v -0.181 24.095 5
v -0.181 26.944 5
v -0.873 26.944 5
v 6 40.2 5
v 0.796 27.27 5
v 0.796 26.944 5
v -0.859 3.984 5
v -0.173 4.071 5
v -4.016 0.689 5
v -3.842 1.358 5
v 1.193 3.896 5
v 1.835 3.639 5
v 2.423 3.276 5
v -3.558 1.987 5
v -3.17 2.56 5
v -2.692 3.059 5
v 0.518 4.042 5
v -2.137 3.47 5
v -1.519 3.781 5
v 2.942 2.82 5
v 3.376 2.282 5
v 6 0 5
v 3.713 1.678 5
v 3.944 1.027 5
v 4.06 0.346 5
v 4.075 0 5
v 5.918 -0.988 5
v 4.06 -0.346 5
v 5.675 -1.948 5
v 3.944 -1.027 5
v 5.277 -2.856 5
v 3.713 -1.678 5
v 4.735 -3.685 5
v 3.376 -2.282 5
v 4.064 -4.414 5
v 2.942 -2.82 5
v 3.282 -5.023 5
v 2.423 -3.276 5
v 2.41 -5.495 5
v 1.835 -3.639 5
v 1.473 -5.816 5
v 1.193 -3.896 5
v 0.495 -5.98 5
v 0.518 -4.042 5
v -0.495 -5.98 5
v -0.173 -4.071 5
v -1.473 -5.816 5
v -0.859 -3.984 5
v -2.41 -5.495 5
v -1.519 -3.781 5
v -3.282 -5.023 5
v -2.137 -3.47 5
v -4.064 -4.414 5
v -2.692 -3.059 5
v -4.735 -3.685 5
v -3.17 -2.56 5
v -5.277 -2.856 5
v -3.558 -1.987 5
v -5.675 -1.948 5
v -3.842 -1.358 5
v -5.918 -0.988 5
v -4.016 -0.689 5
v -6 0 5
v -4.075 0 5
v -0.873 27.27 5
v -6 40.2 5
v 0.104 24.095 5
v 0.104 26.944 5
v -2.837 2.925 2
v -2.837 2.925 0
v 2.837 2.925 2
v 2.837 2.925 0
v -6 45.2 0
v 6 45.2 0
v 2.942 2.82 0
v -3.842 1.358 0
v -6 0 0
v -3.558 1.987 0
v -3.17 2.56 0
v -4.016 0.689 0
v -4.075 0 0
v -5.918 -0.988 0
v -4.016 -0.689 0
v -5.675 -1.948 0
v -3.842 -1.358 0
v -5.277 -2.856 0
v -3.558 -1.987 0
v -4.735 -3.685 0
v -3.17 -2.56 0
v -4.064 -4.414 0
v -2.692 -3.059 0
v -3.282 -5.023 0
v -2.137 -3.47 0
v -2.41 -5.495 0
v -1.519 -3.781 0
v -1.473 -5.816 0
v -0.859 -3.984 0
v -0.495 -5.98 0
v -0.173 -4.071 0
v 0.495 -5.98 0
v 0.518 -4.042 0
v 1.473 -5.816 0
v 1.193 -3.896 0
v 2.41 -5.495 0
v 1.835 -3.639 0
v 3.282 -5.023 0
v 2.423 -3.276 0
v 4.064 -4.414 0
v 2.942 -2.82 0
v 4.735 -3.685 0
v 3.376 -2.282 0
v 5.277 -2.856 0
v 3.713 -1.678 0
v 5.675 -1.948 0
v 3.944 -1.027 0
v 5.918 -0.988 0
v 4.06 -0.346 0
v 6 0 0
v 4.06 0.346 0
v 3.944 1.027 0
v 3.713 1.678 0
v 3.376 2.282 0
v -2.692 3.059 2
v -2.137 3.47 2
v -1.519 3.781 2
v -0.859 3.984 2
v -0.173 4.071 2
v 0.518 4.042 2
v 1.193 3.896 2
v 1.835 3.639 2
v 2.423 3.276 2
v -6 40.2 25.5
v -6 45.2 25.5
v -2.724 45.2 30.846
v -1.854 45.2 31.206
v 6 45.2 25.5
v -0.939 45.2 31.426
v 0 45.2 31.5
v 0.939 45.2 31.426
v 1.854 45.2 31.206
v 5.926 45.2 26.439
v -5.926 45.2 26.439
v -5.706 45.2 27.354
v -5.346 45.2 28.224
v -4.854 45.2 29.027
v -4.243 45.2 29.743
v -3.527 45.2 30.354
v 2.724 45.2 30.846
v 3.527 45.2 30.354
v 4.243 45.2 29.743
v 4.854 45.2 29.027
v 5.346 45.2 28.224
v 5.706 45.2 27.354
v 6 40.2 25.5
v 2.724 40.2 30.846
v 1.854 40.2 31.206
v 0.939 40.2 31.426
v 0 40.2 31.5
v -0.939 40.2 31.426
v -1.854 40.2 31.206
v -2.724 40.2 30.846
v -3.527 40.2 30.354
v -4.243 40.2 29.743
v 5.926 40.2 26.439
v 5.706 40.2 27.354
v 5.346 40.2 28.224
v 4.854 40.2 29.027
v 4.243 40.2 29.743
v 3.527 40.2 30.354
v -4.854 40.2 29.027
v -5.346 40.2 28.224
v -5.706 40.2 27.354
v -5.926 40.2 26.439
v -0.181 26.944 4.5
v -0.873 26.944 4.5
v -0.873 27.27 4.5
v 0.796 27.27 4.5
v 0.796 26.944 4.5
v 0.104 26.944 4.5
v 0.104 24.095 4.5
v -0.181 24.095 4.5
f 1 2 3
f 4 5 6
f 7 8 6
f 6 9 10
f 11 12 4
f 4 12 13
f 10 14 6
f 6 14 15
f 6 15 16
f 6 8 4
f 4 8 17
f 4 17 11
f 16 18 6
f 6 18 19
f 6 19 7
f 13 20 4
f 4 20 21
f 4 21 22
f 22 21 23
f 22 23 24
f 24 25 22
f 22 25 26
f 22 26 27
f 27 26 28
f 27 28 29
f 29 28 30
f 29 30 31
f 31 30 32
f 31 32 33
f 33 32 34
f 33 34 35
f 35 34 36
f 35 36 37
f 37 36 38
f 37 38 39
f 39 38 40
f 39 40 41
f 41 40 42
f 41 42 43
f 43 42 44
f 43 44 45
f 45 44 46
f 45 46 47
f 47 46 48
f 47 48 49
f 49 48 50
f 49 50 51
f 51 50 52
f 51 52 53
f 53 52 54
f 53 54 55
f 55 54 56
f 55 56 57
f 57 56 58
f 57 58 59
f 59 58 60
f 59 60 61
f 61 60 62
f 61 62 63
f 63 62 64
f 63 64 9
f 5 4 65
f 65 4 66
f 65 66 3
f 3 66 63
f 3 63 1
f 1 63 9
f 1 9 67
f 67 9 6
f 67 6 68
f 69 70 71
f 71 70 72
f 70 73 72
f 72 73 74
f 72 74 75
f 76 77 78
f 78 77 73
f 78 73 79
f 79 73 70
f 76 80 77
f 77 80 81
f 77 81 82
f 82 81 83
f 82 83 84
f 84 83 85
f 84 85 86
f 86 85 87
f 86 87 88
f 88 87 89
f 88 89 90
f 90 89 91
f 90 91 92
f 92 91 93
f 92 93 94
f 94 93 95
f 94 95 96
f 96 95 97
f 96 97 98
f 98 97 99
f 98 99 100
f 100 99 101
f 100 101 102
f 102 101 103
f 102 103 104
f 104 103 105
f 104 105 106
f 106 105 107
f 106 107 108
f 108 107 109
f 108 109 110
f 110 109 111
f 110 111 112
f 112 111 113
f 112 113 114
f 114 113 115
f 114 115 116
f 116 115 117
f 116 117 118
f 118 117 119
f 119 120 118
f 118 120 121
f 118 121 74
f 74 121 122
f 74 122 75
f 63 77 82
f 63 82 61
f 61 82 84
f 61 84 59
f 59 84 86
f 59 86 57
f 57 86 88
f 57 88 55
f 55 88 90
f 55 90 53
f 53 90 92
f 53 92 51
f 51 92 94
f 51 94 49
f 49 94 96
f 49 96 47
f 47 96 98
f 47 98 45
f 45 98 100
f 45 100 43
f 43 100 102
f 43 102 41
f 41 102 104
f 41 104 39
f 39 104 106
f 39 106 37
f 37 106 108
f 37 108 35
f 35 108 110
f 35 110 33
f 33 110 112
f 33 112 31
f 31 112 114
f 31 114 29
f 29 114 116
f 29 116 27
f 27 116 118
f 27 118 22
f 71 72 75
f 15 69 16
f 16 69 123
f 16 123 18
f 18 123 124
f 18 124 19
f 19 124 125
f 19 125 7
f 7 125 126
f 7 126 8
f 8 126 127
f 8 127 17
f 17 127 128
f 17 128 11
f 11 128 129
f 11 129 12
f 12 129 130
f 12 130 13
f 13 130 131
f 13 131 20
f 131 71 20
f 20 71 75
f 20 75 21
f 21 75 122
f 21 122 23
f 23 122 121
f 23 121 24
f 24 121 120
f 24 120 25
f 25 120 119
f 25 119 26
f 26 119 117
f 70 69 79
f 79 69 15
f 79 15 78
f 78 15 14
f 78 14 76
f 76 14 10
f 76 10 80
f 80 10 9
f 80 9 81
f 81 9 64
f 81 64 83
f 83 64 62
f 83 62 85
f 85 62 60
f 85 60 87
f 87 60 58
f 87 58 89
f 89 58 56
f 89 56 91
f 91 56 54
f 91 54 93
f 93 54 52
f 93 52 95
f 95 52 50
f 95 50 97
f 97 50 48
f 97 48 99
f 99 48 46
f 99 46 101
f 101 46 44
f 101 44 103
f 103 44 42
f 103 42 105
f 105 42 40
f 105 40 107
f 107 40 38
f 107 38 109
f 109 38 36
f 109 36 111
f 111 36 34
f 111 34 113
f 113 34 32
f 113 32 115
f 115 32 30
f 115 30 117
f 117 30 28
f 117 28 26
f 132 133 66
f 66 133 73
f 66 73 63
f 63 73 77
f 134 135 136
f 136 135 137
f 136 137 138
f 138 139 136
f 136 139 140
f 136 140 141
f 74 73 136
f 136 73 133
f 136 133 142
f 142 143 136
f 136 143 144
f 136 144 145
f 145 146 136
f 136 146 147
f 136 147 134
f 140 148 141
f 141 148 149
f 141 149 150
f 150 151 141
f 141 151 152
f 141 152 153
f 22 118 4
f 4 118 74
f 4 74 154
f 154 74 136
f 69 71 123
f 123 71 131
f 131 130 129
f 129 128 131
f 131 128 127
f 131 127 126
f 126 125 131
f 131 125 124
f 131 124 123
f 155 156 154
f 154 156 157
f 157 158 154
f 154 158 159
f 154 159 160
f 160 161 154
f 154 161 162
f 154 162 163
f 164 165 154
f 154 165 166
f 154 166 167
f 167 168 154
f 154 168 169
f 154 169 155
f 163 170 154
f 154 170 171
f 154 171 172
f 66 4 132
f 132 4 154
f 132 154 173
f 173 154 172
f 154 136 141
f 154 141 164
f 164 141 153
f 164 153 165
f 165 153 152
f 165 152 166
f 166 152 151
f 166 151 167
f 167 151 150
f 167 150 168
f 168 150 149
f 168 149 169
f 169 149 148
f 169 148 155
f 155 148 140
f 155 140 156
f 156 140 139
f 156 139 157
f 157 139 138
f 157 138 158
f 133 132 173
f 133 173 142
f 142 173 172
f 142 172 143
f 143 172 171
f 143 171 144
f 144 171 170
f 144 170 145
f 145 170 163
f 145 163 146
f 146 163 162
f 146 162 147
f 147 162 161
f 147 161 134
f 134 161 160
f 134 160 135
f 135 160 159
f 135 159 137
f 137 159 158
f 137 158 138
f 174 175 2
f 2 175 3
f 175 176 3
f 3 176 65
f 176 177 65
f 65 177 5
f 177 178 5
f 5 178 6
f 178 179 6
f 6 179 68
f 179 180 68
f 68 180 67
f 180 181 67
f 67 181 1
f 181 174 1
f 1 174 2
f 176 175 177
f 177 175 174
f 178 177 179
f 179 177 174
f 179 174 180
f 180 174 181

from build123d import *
from build123d.topology import SkipClean

# Parameters (mm, degrees)
SKETCH1_R           = 6
BOSS_EXTRUDE1_DEPTH = 5
BOSS_EXTRUDE2_START = -5
BOSS_EXTRUDE2_DEPTH = 5
CUT_EXTRUDE1_START  = -3
SKETCH3_R           = 4.075
CUT_EXTRUDE1_DEPTH  = 3
SKETCH4_W           = 12
SKETCH4_H           = 5
BOSS_EXTRUDE3_DEPTH = 26.5
FILLET1_R           = 6
CUT_EXTRUDE2_DEPTH  = 0.5


with BuildPart() as part:
    # Sketch1 → Boss-Extrude1 (new body)
    with BuildSketch(Plane.XY):
        Circle(SKETCH1_R)
        with BuildLine():
            Line((-2.837252192, 2.925), (2.837252192, 2.925))
            ThreePointArc((2.837252192, 2.925), (0, -4.075), (-2.837252192, 2.925))
        make_face(mode=Mode.SUBTRACT)
    extrude(amount=BOSS_EXTRUDE1_DEPTH)

    # Sketch2 → Boss-Extrude2 (add)
    with BuildSketch(Plane.XY.offset(5).offset(BOSS_EXTRUDE2_START)):
        with BuildLine():
            Line((-6, 0), (-6, 45.2))
            Line((-6, 45.2), (6, 45.2))
            Line((6, 45.2), (6, 0))
            ThreePointArc((6, 0), (0, 6), (-6, 0))
        make_face()
    extrude(amount=BOSS_EXTRUDE2_DEPTH)

    # Sketch3 → Cut-Extrude1 (cut)
    with SkipClean():  # the faces are left unmerged after this step: merging them gives an invalid solid
        with BuildSketch(Plane.XY.offset(5).offset(CUT_EXTRUDE1_START)):
            with Locations(Location((0, 0, 0), (0, 0, 134.127564998))):
                Circle(SKETCH3_R)
        extrude(amount=CUT_EXTRUDE1_DEPTH, mode=Mode.SUBTRACT)

    # Sketch4 → Boss-Extrude3 (add)
    with SkipClean():  # the faces are left unmerged after this step: merging them gives an invalid solid
        with BuildSketch(Plane.XY.offset(5)):
            with Locations((0, 42.7)):
                Rectangle(SKETCH4_W, SKETCH4_H)
        extrude(amount=BOSS_EXTRUDE3_DEPTH)

    # Fillet1
    fillet1_edges = [part.edges().sort_by_distance(p)[0] for p in [
        (-6, 42.7, 31.5),
        (6, 42.7, 31.5),
    ]]
    fillet(fillet1_edges, radius=FILLET1_R - 0.0001)  # a hair under: the kernel refuses the full size

    # Sketch6 → Cut-Extrude2 (cut)
    with BuildSketch(Plane.XY.offset(5)):
        Polygon((-0.872927967, 26.944055952), (-0.872927967, 27.269696978), (0.79598229, 27.269696978), (0.79598229, 26.944055952), (0.10399511, 26.944055952), (0.10399511, 24.094696978), (-0.180940787, 24.094696978), (-0.180940787, 26.944055952), align=None)
    extrude(amount=-CUT_EXTRUDE2_DEPTH, mode=Mode.SUBTRACT)


solid = part.part
